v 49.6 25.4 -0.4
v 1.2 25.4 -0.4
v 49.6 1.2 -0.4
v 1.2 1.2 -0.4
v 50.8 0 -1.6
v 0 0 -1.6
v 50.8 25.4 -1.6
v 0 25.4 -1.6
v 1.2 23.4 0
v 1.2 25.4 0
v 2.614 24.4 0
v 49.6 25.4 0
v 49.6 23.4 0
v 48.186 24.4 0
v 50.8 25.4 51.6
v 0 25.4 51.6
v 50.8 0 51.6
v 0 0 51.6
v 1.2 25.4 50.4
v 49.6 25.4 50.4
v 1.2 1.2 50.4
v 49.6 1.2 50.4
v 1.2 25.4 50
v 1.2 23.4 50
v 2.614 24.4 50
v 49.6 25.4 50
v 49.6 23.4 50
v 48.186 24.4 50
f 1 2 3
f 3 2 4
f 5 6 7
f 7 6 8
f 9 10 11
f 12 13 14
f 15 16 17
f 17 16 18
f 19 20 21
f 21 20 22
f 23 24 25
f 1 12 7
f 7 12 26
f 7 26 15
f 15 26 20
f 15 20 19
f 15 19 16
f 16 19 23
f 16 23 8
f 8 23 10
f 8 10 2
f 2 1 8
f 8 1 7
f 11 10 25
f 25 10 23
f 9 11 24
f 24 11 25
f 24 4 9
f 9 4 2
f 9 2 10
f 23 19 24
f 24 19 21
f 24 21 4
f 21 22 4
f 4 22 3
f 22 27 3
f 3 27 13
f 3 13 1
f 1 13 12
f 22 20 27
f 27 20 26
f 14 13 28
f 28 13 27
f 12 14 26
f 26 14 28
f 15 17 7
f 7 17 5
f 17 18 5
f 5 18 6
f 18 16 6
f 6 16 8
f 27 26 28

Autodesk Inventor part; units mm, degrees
ref_plane "YZ Plane" through (0, 0, 0) normal (1, 0, 0) x (0, 1, 0)
ref_plane "XZ Plane" through (0, 0, 0) normal (0, 1, 0) x (-1, 0, 0)
ref_plane "XY Plane" through (0, 0, 0) normal (0, 0, 1) x (1, 0, 0)
sketch "Sketch1" plane through (0, 0, 0) normal (0, 0, 1) x (1, 0, 0)
  line L0 (0, 0) -> (50.8, 0)
  line L1 (50.8, 0) -> (50.8, 25.4)
  line L2 (0, 25.4) -> (0, 0)
  line L3 (1.2, 1.2) -> (49.6, 1.2)
  line L4 (49.6, 1.2) -> (49.6, 23.4)
  line L5 (1.2, 23.4) -> (1.2, 1.2)
  line L6 (50.8, 25.4) -> (49.6, 25.4)
  line L7 (1.2, 25.4) -> (0, 25.4)
  line L8 (2.614, 24.4) -> (1.2, 23.4)
  line L9 (1.2, 25.4) -> (2.614, 24.4)
  line L10 (48.186, 24.4) -> (49.6, 25.4)
  line L11 (48.186, 24.4) -> (49.6, 23.4)
  line L12 (1.2, 25.4) -> (1.2, 23.4) construction
  line L13 (1.2, 24.4) -> (2.614, 24.4) construction
  line L14 (49.6, 23.4) -> (49.6, 25.4) construction
  line L15 (49.6, 24.4) -> (48.186, 24.4) construction
  dimension "Width" = 50.8
  dimension "Height" = 25.4
  dimension "Offset" = 1.2
  dimension "LeftEdge" = 1.2
  dimension "RightEdge" = 1.2
  dimension "LT_Height" = 2
  dimension "LT_Width" = 1.414
  dimension "RT_Width" = 1.414
  dimension "RT_Height" = 2
extrude "Extrusion1" add sketch "Sketch1" along normal blind 50
sketch "Sketch2" plane through (0, 0, 50) normal (0, 0, 1) x (1, 0, 0)
  line L0 (0, 25.4) -> (0, 0) projected
  line L1 (0, 0) -> (50.8, 0) projected
  line L2 (50.8, 0) -> (50.8, 25.4) projected
  line L3 (50.8, 25.4) -> (49.6, 25.4) projected
  line L4 (49.6, 25.4) -> (48.186, 24.4) projected
  line L5 (48.186, 24.4) -> (49.6, 23.4) projected
  line L6 (49.6, 23.4) -> (49.6, 1.2) projected
  line L7 (49.6, 1.2) -> (1.2, 1.2) projected
  line L8 (1.2, 1.2) -> (1.2, 23.4) projected
  line L9 (1.2, 23.4) -> (2.614, 24.4) projected
  line L10 (2.614, 24.4) -> (1.2, 25.4) projected
  line L11 (1.2, 25.4) -> (0, 25.4) projected
  line L12 (1.2, 23.4) -> (1.2, 25.4)
  line L13 (1.2, 1.2) -> (1.2, 23.4) projected
  line L14 (49.6, 23.4) -> (49.6, 25.4)
extrude "Extrusion2" add sketch "Sketch2" along normal blind 0.4 contours L11 L12 L8 L7 L6 L14 L3 L2 L1 L0
sketch "Sketch3" plane through (0, 0, 50.4) normal (0, 0, 1) x (1, 0, 0)
  line L0 (50.8, 0) -> (50.8, 25.4) projected
  line L1 (0, 0) -> (50.8, 0)
  line L2 (50.8, 0) -> (50.8, 25.4)
  line L3 (50.8, 25.4) -> (0, 25.4)
  line L4 (0, 25.4) -> (0, 0)
ref_plane "Work Plane1" through (0, 0, 25) normal (0, 0, 1) x (1, 0, 0)
extrude "Extrusion3" add sketch "Sketch3" along normal blind 1.2
mirror "Mirror1" about plane through (0, 0, 25) normal (0, 0, 1) of "Extrusion3", "Extrusion2"
equation "\"LeftEdge\" = Offset"
equation "\"RightEdge\" = Offset"
equation "\"RT_Width\" = LT_Width"
equation "\"RT_Height\" = LT_Height"
properties part number "channel_base"
